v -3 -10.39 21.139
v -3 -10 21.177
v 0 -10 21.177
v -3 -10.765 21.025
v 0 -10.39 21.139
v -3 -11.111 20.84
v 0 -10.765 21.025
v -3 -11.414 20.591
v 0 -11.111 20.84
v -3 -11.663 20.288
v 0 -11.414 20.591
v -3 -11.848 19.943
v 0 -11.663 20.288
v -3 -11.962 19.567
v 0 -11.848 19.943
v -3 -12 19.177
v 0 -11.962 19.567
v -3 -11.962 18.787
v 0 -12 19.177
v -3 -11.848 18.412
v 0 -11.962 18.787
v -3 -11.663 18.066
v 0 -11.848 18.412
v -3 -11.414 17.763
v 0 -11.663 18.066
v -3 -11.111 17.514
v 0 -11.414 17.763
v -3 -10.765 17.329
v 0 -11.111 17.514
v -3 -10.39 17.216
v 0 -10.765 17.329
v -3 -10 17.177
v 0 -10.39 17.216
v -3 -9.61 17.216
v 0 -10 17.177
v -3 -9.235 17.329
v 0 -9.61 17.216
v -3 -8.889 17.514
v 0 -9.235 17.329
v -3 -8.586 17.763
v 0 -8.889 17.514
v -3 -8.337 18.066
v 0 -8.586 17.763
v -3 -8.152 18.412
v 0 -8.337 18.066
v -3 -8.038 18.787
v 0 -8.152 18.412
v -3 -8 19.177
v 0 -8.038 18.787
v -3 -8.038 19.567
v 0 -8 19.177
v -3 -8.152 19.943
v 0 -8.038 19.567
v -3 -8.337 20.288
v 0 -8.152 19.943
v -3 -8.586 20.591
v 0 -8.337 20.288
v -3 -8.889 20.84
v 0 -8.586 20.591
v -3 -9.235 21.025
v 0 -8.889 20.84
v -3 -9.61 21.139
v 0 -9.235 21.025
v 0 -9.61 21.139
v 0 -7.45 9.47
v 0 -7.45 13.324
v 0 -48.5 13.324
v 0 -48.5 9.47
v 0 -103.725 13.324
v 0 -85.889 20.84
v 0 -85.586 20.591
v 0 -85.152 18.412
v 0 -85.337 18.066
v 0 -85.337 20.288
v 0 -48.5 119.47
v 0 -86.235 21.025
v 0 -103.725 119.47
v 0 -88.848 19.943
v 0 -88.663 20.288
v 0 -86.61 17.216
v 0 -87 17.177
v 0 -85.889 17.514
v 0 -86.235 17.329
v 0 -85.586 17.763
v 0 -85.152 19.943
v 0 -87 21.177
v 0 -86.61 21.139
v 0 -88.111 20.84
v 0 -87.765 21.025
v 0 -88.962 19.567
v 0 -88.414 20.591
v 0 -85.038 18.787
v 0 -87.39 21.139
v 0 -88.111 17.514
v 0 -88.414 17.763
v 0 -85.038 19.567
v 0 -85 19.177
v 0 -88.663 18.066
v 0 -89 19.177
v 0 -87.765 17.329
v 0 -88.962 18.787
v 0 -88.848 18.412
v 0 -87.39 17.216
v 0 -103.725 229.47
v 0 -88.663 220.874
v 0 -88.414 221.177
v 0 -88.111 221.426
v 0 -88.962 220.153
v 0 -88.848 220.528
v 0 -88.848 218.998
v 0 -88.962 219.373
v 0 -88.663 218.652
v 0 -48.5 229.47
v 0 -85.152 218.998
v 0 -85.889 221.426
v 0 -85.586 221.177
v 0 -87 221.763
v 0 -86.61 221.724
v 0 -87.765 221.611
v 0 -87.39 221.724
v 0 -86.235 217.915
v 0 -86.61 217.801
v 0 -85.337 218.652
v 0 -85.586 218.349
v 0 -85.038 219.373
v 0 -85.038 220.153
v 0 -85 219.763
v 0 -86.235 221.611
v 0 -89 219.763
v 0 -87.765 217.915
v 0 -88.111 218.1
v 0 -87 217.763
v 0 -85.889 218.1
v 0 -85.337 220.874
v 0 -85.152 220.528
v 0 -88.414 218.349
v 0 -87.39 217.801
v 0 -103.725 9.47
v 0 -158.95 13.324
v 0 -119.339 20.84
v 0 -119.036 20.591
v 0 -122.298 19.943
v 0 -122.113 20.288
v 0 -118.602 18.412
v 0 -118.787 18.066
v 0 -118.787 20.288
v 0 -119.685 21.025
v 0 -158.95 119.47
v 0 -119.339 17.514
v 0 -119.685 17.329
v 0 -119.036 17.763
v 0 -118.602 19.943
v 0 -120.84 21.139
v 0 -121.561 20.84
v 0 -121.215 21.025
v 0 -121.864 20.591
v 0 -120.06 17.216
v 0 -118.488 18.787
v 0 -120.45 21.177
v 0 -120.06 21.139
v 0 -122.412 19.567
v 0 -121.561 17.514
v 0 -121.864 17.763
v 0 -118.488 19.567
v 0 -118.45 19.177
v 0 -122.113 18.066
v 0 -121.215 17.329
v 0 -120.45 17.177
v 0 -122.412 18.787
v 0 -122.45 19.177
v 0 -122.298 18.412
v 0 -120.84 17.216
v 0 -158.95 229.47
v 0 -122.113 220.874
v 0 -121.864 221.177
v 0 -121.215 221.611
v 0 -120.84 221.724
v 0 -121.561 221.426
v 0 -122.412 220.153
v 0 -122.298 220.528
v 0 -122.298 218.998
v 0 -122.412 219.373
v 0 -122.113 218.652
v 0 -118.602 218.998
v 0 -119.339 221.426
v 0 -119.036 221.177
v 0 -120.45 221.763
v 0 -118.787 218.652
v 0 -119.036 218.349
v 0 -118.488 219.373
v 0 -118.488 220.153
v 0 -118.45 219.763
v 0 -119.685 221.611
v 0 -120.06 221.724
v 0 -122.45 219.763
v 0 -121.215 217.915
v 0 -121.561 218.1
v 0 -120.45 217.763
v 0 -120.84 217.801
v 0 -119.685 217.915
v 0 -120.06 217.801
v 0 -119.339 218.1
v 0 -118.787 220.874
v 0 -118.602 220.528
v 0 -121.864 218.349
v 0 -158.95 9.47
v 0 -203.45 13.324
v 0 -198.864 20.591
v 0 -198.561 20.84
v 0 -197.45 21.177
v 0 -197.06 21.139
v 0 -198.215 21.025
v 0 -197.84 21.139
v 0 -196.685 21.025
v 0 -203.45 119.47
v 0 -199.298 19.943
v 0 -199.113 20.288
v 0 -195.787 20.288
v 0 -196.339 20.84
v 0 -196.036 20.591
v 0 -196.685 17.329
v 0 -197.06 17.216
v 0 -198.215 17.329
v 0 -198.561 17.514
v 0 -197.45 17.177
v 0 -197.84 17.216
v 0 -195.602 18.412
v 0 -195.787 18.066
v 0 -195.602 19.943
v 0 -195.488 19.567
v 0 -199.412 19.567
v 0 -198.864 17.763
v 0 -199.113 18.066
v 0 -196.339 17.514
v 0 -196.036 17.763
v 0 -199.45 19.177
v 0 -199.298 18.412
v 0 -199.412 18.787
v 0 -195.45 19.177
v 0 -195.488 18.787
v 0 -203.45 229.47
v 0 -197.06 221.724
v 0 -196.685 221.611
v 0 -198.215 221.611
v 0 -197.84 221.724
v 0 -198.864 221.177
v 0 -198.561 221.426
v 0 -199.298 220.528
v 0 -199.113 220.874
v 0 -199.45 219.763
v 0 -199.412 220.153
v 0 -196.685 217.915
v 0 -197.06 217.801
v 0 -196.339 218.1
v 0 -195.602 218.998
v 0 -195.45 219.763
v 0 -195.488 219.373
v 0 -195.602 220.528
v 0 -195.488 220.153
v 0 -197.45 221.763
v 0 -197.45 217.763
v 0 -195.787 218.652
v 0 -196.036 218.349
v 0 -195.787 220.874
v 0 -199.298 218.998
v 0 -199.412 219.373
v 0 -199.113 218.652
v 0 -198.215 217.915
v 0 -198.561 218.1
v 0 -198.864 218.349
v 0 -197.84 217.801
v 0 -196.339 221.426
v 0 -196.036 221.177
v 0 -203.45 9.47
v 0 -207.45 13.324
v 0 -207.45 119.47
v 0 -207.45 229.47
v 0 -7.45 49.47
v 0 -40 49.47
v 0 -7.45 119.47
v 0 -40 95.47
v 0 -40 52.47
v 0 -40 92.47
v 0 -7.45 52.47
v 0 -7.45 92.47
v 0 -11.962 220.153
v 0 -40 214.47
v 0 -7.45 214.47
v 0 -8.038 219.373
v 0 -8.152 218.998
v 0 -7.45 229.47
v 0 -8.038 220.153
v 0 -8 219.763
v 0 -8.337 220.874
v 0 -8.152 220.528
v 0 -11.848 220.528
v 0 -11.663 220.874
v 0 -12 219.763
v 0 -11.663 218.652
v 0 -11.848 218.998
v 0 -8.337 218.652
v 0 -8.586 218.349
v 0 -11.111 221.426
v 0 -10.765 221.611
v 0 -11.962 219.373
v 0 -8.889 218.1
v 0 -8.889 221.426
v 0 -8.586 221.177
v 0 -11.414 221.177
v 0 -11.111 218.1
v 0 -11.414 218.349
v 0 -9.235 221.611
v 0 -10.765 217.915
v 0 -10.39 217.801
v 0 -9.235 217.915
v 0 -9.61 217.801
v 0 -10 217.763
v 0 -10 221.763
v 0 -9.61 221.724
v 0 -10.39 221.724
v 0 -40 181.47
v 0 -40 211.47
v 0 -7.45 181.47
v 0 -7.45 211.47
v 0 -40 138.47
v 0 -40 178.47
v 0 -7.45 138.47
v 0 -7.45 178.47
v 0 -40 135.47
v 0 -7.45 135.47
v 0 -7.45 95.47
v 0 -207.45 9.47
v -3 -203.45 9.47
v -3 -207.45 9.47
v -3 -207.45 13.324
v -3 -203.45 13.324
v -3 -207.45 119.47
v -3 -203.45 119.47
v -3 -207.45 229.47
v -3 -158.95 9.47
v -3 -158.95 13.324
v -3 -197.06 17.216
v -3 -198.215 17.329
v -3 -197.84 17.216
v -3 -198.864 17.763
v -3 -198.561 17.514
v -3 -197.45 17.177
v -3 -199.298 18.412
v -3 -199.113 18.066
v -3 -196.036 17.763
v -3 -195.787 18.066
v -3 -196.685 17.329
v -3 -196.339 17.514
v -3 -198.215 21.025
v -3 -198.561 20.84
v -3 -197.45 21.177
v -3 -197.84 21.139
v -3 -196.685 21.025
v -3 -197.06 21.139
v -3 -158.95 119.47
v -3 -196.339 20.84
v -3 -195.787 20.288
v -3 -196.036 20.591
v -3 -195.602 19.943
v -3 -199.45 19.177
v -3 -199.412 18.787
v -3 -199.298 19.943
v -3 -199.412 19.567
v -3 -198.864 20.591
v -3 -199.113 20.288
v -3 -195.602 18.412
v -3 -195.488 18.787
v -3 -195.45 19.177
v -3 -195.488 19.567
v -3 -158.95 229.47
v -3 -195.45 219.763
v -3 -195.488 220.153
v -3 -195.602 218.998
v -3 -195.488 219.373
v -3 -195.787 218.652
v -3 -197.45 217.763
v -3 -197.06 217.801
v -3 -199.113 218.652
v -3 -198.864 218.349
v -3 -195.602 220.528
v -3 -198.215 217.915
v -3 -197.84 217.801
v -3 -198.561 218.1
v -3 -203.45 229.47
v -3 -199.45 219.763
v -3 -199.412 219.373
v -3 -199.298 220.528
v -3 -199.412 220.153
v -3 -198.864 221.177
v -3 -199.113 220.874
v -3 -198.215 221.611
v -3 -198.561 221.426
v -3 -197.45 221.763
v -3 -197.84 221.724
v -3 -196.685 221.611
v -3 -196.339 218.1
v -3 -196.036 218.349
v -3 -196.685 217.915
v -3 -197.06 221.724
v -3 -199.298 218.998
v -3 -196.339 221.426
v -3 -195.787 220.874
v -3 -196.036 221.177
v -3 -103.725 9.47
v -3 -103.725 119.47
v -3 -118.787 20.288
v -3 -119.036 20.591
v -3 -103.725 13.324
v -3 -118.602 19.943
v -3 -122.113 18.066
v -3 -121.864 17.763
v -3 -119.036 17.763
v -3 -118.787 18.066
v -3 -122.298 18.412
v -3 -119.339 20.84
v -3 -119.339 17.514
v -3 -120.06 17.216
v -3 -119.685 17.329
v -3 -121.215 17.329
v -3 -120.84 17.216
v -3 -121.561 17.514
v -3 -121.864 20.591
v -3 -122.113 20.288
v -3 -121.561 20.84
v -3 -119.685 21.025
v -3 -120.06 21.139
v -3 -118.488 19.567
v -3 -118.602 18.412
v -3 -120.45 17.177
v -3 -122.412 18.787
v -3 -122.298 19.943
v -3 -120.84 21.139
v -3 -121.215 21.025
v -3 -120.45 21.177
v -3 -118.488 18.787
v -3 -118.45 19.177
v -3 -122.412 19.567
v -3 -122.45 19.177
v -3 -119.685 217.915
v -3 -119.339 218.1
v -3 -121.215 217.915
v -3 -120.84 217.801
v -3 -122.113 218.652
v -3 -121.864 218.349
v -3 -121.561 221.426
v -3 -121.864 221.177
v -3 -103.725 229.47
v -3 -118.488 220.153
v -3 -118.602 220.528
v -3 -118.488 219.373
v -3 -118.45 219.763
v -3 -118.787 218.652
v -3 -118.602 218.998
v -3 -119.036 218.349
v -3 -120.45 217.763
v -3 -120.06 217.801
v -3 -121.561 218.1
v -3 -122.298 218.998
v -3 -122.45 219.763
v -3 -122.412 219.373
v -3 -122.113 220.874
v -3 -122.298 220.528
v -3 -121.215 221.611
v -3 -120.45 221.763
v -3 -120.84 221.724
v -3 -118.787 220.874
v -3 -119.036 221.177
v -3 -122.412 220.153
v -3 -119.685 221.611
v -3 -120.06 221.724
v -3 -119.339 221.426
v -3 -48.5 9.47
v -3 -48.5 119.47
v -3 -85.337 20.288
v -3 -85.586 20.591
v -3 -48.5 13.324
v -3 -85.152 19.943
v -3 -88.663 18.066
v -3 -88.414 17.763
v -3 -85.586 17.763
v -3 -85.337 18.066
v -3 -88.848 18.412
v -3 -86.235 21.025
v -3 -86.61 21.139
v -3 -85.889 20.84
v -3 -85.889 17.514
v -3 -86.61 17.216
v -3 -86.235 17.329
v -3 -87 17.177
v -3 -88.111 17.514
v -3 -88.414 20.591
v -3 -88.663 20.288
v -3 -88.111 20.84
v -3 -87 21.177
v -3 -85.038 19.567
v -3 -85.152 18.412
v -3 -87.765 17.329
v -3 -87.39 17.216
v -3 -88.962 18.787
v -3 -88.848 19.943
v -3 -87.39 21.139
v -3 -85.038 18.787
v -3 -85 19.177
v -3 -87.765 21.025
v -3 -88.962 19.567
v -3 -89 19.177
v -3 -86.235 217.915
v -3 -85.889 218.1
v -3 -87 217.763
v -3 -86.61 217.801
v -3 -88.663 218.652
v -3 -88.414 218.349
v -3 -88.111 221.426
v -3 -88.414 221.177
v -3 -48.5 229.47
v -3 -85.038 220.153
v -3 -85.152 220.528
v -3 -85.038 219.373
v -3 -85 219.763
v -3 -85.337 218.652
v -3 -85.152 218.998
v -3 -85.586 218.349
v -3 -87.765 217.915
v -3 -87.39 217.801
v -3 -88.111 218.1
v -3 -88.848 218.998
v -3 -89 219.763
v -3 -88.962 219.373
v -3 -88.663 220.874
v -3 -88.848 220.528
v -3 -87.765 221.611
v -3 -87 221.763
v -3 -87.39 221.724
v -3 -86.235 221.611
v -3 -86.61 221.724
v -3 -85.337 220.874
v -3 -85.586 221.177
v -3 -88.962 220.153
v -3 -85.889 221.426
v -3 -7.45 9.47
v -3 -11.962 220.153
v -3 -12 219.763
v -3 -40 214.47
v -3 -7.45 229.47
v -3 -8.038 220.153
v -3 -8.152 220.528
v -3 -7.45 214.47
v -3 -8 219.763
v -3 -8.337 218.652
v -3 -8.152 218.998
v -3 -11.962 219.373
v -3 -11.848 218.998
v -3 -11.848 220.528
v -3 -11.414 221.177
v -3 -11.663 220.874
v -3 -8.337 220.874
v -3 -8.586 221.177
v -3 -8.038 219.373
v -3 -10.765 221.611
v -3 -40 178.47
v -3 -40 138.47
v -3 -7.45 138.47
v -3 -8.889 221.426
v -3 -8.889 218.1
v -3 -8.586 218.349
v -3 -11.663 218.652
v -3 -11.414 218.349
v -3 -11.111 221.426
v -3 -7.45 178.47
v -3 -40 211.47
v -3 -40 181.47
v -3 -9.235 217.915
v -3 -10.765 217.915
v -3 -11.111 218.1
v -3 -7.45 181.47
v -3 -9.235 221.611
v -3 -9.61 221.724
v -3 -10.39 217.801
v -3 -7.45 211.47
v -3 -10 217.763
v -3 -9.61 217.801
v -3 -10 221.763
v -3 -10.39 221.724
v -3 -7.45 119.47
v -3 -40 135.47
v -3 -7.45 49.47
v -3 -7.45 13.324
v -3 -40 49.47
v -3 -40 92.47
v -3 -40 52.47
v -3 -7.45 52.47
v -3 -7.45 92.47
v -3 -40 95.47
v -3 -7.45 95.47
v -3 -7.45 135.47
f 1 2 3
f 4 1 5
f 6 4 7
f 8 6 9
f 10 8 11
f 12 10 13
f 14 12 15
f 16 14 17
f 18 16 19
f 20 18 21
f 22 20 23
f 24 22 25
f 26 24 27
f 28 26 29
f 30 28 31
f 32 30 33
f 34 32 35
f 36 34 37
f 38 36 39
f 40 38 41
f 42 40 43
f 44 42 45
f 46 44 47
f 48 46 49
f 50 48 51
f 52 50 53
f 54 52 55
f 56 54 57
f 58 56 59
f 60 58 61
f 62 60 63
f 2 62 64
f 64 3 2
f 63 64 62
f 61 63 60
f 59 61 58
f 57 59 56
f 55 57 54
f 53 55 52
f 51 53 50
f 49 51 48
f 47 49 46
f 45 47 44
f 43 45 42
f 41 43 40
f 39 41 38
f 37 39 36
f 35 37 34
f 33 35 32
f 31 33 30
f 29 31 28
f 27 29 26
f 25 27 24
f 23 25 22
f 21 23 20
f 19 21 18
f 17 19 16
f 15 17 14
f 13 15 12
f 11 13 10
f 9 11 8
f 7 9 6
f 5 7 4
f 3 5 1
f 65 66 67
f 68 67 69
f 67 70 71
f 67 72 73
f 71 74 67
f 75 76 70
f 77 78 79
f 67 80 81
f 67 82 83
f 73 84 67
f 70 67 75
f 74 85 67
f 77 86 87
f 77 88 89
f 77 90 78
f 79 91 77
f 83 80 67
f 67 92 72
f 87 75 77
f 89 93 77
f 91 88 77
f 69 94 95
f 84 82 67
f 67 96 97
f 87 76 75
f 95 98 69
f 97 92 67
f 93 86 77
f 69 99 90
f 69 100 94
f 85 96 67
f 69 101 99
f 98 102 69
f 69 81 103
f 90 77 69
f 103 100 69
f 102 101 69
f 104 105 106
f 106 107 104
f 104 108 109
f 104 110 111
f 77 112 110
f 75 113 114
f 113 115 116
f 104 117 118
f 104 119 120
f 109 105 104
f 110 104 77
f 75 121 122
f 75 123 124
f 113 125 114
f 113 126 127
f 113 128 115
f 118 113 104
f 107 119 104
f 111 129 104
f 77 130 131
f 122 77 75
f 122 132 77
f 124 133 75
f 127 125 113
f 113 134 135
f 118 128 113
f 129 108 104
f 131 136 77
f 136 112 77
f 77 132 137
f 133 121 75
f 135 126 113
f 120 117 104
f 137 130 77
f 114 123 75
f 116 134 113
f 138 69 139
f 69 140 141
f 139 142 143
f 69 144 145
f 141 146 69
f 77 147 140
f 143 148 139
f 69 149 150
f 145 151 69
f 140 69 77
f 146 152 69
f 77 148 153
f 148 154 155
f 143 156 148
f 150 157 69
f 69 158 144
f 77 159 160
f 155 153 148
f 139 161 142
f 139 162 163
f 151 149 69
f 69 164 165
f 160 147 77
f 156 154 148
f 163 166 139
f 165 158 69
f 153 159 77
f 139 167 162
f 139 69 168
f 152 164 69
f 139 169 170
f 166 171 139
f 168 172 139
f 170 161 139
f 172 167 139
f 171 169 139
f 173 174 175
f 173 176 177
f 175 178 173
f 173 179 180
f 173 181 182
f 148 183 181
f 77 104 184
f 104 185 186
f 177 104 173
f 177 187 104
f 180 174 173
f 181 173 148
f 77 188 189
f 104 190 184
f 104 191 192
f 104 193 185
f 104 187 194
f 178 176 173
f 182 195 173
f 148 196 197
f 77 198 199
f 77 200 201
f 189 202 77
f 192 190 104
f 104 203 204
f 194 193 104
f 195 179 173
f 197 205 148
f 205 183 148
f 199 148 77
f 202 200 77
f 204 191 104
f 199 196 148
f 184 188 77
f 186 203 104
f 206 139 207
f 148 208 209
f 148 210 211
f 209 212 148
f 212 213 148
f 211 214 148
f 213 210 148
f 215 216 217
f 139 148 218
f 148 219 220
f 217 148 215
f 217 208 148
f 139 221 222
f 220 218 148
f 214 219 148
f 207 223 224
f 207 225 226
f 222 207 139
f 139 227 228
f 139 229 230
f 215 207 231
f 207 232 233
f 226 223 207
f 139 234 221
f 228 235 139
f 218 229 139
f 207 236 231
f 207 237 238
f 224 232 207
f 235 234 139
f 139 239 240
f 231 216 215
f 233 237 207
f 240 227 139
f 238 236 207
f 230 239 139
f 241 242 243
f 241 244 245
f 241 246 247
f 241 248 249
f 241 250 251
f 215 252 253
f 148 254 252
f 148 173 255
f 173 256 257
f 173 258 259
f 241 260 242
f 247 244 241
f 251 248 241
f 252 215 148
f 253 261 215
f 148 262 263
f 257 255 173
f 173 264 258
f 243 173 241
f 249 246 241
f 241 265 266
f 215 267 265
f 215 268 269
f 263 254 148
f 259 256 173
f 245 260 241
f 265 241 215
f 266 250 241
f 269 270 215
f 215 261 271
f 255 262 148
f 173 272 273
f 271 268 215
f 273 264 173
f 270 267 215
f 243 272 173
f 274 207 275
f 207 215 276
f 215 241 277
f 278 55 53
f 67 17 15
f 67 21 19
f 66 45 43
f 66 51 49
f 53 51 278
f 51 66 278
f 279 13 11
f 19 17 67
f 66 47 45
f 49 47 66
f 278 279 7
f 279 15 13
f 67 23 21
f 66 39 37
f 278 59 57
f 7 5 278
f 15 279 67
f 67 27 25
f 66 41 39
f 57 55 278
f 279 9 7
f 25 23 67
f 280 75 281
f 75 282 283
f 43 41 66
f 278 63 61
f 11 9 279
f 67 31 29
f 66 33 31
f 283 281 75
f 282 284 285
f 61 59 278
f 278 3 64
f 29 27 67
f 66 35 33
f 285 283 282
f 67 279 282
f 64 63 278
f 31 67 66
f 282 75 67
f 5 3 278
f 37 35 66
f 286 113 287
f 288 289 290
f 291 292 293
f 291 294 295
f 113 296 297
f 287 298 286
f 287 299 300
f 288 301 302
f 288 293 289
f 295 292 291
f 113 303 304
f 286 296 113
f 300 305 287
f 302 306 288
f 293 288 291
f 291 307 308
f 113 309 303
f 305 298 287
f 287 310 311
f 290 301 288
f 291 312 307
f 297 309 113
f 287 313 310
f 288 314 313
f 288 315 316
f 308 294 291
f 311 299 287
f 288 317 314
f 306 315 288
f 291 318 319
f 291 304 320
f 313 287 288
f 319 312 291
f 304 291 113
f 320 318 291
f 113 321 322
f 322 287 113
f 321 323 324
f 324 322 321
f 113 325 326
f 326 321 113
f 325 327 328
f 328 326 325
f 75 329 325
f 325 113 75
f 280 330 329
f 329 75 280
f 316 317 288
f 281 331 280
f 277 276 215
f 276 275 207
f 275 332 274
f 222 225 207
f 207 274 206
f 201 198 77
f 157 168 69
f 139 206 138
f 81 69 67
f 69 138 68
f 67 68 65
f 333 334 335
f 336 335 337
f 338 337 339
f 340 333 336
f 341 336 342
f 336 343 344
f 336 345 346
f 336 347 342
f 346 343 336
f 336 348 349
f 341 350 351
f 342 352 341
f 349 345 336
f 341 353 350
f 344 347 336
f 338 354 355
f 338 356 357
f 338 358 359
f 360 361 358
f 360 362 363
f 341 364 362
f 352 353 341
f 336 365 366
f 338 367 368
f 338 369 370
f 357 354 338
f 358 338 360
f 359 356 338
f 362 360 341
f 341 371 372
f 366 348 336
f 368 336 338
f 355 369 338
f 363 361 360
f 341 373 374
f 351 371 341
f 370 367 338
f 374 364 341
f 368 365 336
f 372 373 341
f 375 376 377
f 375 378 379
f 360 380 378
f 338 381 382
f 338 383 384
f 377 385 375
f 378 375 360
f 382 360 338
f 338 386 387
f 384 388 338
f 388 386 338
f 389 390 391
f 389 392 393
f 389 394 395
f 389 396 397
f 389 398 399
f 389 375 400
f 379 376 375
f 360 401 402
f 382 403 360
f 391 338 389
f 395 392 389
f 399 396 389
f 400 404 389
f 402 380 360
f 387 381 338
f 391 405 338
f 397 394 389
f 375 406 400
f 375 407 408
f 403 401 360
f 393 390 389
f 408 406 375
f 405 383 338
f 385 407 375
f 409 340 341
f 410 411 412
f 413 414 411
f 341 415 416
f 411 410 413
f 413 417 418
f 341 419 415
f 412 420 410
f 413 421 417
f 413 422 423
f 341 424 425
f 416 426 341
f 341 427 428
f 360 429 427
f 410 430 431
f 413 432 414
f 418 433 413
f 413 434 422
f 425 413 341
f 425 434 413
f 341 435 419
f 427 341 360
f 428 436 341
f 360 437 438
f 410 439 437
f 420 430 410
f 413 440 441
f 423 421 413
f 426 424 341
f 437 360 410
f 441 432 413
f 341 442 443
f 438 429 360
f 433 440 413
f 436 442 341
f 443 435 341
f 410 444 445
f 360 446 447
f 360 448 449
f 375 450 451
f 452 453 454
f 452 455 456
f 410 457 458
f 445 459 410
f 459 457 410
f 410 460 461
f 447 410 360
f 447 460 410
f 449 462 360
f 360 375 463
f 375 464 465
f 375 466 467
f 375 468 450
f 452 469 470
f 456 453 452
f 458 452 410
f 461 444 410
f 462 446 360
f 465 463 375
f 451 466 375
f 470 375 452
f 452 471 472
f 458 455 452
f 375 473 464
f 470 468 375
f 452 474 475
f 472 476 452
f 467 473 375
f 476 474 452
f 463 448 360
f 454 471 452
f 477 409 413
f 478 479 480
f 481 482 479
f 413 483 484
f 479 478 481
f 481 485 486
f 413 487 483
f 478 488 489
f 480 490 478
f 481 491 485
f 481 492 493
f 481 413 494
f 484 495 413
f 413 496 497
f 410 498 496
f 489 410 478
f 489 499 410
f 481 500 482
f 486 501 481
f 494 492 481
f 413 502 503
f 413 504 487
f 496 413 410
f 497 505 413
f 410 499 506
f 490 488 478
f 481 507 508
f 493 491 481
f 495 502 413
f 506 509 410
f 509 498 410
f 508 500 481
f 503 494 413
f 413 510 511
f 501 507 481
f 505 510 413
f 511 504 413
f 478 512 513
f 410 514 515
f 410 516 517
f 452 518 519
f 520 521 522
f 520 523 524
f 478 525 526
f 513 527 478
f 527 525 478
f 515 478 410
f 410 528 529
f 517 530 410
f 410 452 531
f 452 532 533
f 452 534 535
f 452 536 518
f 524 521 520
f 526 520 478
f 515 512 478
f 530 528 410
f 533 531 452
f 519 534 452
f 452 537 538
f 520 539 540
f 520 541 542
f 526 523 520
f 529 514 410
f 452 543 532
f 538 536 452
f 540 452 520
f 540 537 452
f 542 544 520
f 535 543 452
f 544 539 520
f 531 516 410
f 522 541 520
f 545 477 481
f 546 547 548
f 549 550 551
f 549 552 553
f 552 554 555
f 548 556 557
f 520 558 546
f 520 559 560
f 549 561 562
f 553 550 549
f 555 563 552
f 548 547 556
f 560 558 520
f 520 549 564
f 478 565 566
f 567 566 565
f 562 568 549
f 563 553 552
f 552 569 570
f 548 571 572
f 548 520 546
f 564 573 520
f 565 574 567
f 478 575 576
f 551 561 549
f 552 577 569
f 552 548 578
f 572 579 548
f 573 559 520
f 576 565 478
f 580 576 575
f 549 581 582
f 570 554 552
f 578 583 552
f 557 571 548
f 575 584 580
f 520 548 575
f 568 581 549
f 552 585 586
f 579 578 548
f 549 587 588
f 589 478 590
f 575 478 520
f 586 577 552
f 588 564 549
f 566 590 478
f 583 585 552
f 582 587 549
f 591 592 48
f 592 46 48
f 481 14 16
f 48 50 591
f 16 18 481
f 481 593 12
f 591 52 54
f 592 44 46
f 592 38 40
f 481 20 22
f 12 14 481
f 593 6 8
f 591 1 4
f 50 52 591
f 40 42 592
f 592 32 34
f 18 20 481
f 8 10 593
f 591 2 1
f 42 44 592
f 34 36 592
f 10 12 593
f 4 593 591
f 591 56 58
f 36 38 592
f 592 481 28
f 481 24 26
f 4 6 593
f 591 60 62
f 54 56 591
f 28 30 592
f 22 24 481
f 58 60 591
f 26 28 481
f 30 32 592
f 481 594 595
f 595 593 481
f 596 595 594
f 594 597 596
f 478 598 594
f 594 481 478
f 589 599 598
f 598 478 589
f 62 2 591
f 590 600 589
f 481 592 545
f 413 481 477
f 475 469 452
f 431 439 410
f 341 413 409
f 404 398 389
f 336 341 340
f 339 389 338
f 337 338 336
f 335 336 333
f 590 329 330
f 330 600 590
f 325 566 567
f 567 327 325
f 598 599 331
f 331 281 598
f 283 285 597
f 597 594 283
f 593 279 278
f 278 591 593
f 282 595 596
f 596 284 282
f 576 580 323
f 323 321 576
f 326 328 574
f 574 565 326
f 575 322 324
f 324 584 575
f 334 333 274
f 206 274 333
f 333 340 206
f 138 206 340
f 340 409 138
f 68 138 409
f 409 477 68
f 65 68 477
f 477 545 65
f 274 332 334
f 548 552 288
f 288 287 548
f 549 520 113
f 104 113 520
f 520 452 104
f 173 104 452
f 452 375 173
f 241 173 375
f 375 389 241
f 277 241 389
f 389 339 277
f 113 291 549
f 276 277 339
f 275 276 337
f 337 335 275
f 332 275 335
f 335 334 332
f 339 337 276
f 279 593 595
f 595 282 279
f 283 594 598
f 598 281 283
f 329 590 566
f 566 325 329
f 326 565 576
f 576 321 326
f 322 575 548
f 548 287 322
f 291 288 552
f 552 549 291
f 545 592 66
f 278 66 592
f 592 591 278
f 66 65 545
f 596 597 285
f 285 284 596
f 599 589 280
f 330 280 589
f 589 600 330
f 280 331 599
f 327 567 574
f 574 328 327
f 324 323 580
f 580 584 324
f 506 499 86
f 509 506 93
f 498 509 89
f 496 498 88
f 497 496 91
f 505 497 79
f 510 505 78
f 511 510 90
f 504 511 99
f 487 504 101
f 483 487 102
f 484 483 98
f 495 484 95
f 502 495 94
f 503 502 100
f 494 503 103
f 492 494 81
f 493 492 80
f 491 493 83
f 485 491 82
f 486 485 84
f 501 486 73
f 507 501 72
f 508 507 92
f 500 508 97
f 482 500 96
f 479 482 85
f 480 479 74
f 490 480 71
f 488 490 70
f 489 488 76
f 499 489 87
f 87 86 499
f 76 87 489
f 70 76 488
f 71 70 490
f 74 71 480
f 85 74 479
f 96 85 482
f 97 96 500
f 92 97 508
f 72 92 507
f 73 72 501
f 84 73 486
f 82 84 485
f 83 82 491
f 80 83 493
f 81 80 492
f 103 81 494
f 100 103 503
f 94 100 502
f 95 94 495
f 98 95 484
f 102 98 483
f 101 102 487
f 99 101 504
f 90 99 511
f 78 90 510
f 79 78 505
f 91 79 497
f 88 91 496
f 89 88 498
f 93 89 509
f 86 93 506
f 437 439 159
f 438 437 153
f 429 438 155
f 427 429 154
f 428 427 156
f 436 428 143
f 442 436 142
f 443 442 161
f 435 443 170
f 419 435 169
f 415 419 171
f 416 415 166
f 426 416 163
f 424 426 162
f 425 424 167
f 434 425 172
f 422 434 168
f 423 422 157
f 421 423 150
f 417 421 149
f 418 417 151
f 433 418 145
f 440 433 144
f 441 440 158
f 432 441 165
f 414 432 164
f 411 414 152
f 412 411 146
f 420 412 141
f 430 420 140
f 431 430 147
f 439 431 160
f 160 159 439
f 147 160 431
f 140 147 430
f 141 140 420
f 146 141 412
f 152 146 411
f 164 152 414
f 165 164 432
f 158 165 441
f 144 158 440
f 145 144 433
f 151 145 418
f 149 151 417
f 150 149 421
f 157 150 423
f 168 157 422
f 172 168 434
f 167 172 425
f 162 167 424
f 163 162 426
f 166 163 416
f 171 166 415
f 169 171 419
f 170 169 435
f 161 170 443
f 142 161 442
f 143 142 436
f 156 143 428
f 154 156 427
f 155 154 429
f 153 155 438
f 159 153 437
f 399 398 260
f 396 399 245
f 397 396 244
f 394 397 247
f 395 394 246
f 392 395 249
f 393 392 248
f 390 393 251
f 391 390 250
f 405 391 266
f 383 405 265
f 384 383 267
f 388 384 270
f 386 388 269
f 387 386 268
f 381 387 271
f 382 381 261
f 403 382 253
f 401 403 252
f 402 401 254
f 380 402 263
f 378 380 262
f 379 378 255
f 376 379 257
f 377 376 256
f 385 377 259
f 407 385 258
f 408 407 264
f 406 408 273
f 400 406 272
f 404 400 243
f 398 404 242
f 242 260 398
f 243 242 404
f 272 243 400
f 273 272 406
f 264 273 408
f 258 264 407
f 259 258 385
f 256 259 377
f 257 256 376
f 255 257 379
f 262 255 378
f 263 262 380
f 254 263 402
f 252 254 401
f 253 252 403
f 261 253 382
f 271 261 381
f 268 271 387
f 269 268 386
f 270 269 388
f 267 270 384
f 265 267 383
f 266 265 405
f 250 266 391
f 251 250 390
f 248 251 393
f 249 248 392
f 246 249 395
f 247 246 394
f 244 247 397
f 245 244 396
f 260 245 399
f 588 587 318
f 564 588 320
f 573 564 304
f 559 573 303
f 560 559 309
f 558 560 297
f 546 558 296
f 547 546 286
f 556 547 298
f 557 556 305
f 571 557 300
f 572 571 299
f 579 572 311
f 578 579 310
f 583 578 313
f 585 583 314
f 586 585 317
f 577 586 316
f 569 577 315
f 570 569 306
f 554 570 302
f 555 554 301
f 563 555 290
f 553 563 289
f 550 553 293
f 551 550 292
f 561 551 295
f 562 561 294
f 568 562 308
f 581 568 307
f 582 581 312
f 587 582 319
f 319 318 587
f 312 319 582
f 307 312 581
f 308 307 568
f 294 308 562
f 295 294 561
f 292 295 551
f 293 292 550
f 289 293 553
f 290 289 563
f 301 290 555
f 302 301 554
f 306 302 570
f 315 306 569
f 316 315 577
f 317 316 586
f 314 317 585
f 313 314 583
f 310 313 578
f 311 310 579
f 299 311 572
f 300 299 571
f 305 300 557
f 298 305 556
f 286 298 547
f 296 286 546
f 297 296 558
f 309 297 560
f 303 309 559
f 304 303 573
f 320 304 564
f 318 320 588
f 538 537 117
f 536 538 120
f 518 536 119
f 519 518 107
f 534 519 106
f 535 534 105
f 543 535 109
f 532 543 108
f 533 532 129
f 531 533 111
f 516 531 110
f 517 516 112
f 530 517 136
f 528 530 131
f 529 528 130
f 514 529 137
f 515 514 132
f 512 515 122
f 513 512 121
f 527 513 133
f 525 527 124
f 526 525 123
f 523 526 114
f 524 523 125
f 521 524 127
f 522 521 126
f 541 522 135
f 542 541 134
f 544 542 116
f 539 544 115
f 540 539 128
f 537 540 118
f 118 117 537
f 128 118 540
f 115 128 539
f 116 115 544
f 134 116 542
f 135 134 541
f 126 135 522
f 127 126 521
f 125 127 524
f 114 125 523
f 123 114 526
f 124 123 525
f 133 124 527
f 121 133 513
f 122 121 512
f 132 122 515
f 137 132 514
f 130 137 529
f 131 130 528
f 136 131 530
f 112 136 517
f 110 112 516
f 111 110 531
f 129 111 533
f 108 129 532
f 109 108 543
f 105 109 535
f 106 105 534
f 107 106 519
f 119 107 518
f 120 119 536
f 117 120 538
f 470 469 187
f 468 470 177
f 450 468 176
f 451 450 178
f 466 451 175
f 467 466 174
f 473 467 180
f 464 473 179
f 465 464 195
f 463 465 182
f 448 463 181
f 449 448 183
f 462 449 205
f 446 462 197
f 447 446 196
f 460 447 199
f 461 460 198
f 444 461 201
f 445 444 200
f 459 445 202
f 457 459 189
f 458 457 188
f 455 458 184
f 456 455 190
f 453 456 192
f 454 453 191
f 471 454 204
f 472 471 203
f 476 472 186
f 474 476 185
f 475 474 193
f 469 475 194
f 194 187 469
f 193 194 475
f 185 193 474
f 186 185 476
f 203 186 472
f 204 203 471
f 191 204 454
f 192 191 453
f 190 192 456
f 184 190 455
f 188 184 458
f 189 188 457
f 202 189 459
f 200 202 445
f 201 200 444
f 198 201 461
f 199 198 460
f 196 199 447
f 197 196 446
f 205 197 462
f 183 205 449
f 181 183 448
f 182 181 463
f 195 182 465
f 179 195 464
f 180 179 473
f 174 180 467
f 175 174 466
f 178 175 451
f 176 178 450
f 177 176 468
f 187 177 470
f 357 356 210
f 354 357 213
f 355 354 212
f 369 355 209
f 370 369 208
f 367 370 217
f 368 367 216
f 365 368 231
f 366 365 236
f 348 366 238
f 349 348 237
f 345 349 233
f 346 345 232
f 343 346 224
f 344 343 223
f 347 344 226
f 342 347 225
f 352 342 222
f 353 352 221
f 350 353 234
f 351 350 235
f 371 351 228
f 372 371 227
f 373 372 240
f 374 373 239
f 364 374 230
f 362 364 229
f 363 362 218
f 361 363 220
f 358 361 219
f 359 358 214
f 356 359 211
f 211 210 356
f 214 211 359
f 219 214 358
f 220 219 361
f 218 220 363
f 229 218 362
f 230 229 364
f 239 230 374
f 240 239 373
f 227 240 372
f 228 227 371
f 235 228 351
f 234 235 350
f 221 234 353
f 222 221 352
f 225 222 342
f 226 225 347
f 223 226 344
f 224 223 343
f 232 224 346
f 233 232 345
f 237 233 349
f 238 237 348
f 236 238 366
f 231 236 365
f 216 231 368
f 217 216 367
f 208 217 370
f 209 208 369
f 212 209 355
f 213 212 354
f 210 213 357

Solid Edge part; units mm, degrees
sketch "Sketch1" plane through (0, 0, 0) normal (-1, 0, 0) x (0, -1, 0)
  line L0 (0, 0) -> (207.45, 0)
  line L1 (207.45, 0) -> (207.45, 214.47)
  line L2 (207.45, 214.47) -> (0, 214.47)
  line L3 (0, 214.47) -> (0, 0)
  dimension "D1" = 207.45
  dimension "D2" = 214.47
extrude "Protrusion1" add sketch "Sketch1" against normal blind 3
sketch "Sketch2" plane through (0, -103.725, 107.235) normal (-1, 0, 0) x (0, 1, 0)
  line L0 (-83.975, -28.235) -> (114.48, -28.235)
  line L1 (114.48, -28.235) -> (114.48, -31.235)
  line L2 (-83.975, -31.235) -> (114.48, -31.235)
  line L3 (-83.975, -28.235) -> (-83.975, -31.235)
  line L4 (-83.975, 11.765) -> (114.48, 11.765)
  line L5 (114.48, 11.765) -> (114.48, 14.765)
  line L6 (-83.975, 14.765) -> (114.48, 14.765)
  line L7 (-83.975, 11.765) -> (-83.975, 14.765)
  line L8 (-83.975, 57.765) -> (114.48, 57.765)
  line L9 (114.48, 57.765) -> (114.48, 54.765)
  line L10 (-83.975, 54.765) -> (114.48, 54.765)
  line L11 (-83.975, 57.765) -> (-83.975, 54.765)
  line L12 (-83.975, -74.235) -> (114.48, -74.235)
  line L13 (114.48, -74.235) -> (114.48, -71.235)
  line L14 (-83.975, -71.235) -> (114.48, -71.235)
  line L15 (-83.975, -74.235) -> (-83.975, -71.235)
  line L16 (-83.975, -104.235) -> (114.48, -104.235)
  line L17 (114.48, -104.235) -> (114.48, -107.235)
  line L18 (-83.975, -107.235) -> (114.48, -107.235)
  line L19 (-83.975, -104.235) -> (-83.975, -107.235)
  dimension "D1" = 214.47
  dimension "D2" = 207.45
  dimension "D3" = 198.455
  dimension "D4" = 3
  dimension "D5" = 3
  dimension "D6" = 40
  dimension "D7" = 40
  dimension "D8" = 3
  dimension "D9" = 3
  dimension "D10" = 3
  dimension "D11" = 3
extrude "Cutout1" cut sketch "Sketch2" against normal blind 10
sketch "Sketch3" plane through (0, -103.725, 107.235) normal (-1, 0, 0) x (0, 1, 0)
  line L0 (-118.847, 97.765) -> (179.5114, 97.765)
  line L1 (191.0928, 110.2989) -> (179.5114, 97.765)
  line L2 (-118.847, 116.9168) -> (191.0928, 110.2989)
  line L3 (-118.847, 97.765) -> (-118.847, 116.9168)
  dimension "D1" = 298.3584
  dimension "D2" = 40
  dimension "D3" = 19.1518
  dimension "D4" = 310.0104
  dimension "D5" = 17.0653
extrude "Cutout2" cut sketch "Sketch3" against normal blind 37
sketch "Sketch4" plane through (0, -103.725, 111.97) normal (-1, 0, 0) x (0, 1, 0)
  line L0 (-103.725, 102.5) -> (-103.725, -102.5)
  line L1 (-103.725, -102.5) -> (83.725, -102.5)
  line L2 (83.725, -102.5) -> (83.725, -99.5)
  line L3 (83.725, -99.5) -> (103.725, -99.5)
  line L4 (103.725, -99.5) -> (103.725, -69.5)
  line L5 (83.725, -69.5) -> (103.725, -69.5)
  line L6 (83.725, -66.5) -> (83.725, -69.5)
  line L7 (83.725, -66.5) -> (103.725, -66.5)
  line L8 (103.725, -66.5) -> (103.725, -26.5)
  line L9 (83.725, -26.5) -> (103.725, -26.5)
  line L10 (83.725, -23.5) -> (83.725, -26.5)
  line L11 (83.725, -23.5) -> (103.725, -23.5)
  line L12 (103.725, -23.5) -> (103.725, 16.5)
  line L13 (83.725, 16.5) -> (103.725, 16.5)
  line L14 (83.725, 19.5) -> (83.725, 16.5)
  line L15 (83.725, 19.5) -> (103.725, 19.5)
  line L16 (103.725, 19.5) -> (103.725, 59.5)
  line L17 (83.725, 59.5) -> (103.725, 59.5)
  line L18 (83.725, 62.5) -> (83.725, 59.5)
  line L19 (83.725, 62.5) -> (103.725, 62.5)
  line L20 (103.725, 62.5) -> (103.725, 102.5)
  line L21 (32.3413, 102.5) -> (103.725, 102.5)
  line L22 (-103.725, 102.5) -> (32.3413, 102.5)
  dimension "D1" = 187.45
  dimension "D2" = 159
  dimension "D3" = 20
  dimension "D4" = 20
  dimension "D5" = 20
  dimension "D6" = 20
  dimension "D7" = 3
  dimension "D8" = 20
  dimension "D9" = 20
  dimension "D10" = 20
  dimension "D11" = 20
  dimension "D12" = 20
  dimension "D13" = 71.3837
extrude "Protrusion2" add sketch "Sketch4" along normal blind 3
sketch "Sketch5" plane through (0, -113.725, 214.47) normal (0, 0, 1) x (0, 1, 0)
  line L0 (-93.725, -3) -> (113.725, -3)
  line L1 (113.725, -3) -> (113.725, 3)
  line L2 (113.725, 3) -> (-93.725, 3)
  line L3 (-93.725, 3) -> (-93.725, -3)
  dimension "D1" = 207.45
  dimension "D2" = 6
extrude "Protrusion3" add sketch "Sketch5" along normal blind 15
sketch "Sketch6" plane through (-3, -103.725, 111.8236) normal (-1, 0, 0) x (0, 1, 0)
  circle A0 centre (93.725, 92.6464) radius 2
  circle A1 centre (16.725, 92.6464) radius 2
  circle A2 centre (-16.725, 92.6464) radius 2
  circle A3 centre (-93.725, -107.9393) radius 2
  circle A4 centre (93.725, -107.9393) radius 2
  circle A5 centre (16.725, -107.9393) radius 2
  circle A6 centre (-16.725, -107.9393) radius 2
  circle A7 centre (-93.725, 92.6464) radius 2
  dimension "D1" = 10
  dimension "D2" = 10
  dimension "D3" = 4
  dimension "D4" = 10
  dimension "D5" = 10
  dimension "D6" = 207.45
  dimension "D7" = 220
extrude "Cutout3" cut sketch "Sketch6" against normal blind 10
sketch "Sketch7" plane through (0, -103.725, 229.47) normal (0, 0, 1) x (0, 1, 0)
  line L0 (-86.2619, 0) -> (-115.3515, 0)
  line L1 (-115.3515, 0) -> (-115.3515, -14.0973)
  line L2 (-115.3515, -14.0973) -> (121.3932, -14.0973)
  line L3 (121.3932, -14.0973) -> (121.3932, 0)
  line L4 (121.3932, 0) -> (-86.2619, 0)
  dimension "D1" = 29.0896
  dimension "D2" = 14.0973
  dimension "D3" = 236.7447
  dimension "D4" = 14.0973
extrude "Cutout4" cut sketch "Sketch7" against normal blind 456
sketch "Sketch8" plane through (0, -103.725, 119.47) normal (1, 0, 0) x (0, -1, 0)
  line L0 (-83.725, 67) -> (-63.725, 67)
  line L1 (-63.725, 67) -> (-63.725, 70)
  line L2 (-63.725, 70) -> (-83.725, 70)
  line L3 (-83.725, 70) -> (-83.725, 67)
  line L4 (-83.725, 24) -> (-63.725, 24)
  line L5 (-63.725, 24) -> (-63.725, 27)
  line L6 (-63.725, 27) -> (-83.725, 27)
  line L7 (-83.725, 27) -> (-83.725, 24)
  line L8 (-83.725, -19) -> (-63.725, -19)
  line L9 (-63.725, -19) -> (-63.725, -16)
  line L10 (-63.725, -16) -> (-83.725, -16)
  line L11 (-83.725, -16) -> (-83.725, -19)
  line L12 (-83.725, -62) -> (-63.725, -62)
  line L13 (-63.725, -62) -> (-63.725, -59)
  line L14 (-63.725, -59) -> (-83.725, -59)
  line L15 (-83.725, -59) -> (-83.725, -62)
  line L16 (-83.725, -95) -> (-63.725, -95)
  line L17 (-63.725, -95) -> (-63.725, -92)
  line L18 (-63.725, -92) -> (-83.725, -92)
  line L19 (-83.725, -92) -> (-83.725, -95)
  dimension "D1" = 20
  dimension "D2" = 3
  dimension "D3" = 20
  dimension "D4" = 3
  dimension "D5" = 20
  dimension "D6" = 3
  dimension "D7" = 20
  dimension "D8" = 3
  dimension "D9" = 20
  dimension "D10" = 3
extrude "ExtrudedCutout_42" cut sketch "Sketch8" against normal blind 4
sketch "Sketch9" plane through (0, -103.725, 119.47) normal (1, 0, 0) x (0, 1, 0)
  line L0 (96.275, -147.6514) -> (96.275, 128.9829)
  line L1 (132.0943, 114.84) -> (96.275, 128.9829)
  line L2 (169.9971, 15.2743) -> (132.0943, 114.84)
  line L3 (96.275, -147.6514) -> (169.9971, 15.2743)
  dimension "D1" = 276.6343
  dimension "D2" = 200
  dimension "D3" = 178.8288
  dimension "D4" = 106.5362
  dimension "D5" = 38.5103
extrude "ExtrudedCutout_43" cut sketch "Sketch9" against normal blind 148
